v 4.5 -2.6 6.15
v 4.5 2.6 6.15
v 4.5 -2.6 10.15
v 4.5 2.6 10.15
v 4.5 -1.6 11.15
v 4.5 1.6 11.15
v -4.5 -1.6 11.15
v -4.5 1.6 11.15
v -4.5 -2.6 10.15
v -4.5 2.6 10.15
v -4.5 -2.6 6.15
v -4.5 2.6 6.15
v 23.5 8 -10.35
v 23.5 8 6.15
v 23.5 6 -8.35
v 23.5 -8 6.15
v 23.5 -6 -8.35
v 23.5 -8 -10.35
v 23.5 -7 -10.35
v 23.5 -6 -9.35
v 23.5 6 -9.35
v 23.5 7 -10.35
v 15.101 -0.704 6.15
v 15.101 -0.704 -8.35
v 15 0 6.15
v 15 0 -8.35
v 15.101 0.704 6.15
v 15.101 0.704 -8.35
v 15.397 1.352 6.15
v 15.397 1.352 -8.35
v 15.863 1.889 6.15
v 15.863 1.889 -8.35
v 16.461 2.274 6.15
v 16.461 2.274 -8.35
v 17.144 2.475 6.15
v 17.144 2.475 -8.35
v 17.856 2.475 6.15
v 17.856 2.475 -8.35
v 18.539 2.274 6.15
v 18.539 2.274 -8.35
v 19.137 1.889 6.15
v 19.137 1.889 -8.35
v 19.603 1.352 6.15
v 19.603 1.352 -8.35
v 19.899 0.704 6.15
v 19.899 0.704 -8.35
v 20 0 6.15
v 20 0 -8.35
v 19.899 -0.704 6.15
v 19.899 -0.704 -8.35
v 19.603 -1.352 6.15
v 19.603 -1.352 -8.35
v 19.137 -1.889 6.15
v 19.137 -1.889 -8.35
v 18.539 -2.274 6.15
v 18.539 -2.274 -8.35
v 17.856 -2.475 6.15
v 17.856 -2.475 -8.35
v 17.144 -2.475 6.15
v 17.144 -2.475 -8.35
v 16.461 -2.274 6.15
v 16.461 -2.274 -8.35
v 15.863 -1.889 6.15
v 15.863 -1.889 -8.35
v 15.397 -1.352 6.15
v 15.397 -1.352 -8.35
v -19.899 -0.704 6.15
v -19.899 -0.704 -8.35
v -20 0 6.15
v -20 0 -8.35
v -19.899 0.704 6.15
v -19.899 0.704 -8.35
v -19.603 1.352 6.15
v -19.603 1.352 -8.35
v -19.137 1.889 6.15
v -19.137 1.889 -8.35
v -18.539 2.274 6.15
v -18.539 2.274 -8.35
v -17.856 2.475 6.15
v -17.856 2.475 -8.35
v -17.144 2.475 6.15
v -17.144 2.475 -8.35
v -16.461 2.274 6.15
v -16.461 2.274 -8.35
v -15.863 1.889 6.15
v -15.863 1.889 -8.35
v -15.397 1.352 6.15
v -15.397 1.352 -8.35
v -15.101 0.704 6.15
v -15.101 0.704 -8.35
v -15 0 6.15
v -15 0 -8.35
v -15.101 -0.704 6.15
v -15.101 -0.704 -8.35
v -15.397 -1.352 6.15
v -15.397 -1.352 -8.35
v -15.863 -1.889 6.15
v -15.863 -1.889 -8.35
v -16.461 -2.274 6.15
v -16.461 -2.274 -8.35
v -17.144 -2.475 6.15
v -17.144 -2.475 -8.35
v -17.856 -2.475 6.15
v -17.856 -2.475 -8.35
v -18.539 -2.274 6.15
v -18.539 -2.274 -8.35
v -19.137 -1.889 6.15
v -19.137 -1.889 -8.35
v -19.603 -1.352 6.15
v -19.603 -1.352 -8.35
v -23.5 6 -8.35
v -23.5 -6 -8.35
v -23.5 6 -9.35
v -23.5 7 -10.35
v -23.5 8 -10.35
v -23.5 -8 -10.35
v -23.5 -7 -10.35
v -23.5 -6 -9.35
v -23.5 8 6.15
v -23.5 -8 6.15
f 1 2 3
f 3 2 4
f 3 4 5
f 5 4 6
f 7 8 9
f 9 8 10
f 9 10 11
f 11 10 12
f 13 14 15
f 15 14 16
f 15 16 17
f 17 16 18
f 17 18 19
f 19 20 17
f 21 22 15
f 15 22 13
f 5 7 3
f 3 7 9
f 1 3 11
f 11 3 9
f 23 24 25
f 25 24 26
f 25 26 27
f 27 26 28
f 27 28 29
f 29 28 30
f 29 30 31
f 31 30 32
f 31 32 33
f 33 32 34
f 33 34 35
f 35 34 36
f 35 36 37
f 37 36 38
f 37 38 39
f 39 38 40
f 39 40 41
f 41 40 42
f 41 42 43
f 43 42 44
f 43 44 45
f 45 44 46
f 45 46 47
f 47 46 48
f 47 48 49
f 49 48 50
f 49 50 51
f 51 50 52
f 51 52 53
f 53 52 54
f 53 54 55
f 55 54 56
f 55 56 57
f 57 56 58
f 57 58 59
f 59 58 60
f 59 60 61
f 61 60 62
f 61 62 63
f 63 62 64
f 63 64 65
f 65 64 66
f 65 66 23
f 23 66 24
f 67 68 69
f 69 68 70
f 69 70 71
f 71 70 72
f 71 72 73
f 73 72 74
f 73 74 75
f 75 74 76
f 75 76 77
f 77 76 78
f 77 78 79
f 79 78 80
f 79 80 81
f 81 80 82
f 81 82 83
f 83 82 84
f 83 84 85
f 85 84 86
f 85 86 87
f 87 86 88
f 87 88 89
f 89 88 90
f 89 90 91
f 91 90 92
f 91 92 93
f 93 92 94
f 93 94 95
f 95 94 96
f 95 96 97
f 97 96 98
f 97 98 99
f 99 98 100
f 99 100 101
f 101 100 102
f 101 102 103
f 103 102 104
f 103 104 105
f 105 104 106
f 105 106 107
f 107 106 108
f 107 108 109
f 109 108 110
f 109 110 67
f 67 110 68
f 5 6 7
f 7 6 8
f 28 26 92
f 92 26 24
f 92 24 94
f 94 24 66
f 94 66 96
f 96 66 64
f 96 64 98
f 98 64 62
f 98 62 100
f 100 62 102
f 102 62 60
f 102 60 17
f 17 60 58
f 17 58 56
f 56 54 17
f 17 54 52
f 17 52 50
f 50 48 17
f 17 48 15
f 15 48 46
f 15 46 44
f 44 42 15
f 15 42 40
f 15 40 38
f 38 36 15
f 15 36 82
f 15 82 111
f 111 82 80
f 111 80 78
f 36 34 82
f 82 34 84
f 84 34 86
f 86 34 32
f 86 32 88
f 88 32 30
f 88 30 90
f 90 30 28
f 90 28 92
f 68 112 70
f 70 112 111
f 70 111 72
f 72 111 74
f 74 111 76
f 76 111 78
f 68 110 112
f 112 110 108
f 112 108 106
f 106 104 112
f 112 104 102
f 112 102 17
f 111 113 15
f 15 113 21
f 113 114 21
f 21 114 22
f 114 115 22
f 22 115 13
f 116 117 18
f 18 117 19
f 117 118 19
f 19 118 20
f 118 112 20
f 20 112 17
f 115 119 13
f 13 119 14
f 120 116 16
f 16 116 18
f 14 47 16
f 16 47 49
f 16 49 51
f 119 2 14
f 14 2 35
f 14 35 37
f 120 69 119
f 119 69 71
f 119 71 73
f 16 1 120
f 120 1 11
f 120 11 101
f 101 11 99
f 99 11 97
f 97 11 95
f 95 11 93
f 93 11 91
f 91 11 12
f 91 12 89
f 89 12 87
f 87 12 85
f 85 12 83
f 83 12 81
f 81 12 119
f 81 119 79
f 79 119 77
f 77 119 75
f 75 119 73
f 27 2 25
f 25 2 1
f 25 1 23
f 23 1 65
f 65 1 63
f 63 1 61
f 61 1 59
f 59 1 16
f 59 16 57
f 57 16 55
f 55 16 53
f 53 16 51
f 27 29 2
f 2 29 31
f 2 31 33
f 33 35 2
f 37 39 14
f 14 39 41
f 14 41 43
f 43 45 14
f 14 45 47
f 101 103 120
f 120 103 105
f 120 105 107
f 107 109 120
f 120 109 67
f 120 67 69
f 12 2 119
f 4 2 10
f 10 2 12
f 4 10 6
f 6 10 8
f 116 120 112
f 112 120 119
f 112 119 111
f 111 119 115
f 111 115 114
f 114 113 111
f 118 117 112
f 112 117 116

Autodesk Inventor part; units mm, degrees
ref_plane "YZ Plane" through (0, 0, 0) normal (1, 0, 0) x (0, 1, 0)
ref_plane "XZ Plane" through (0, 0, 0) normal (0, 1, 0) x (-1, 0, 0)
ref_plane "XY Plane" through (0, 0, 0) normal (0, 0, 1) x (1, 0, 0)
ref_plane "작업 평면1" through (23.5, -8, -2) normal (1, 0, 0) x (0, 0, -1)
sketch "스케치1" plane through (23.5, -8, -2) normal (1, 0, 0) x (0, 0, -1)
  line L0 (0, 16) -> (-8.15, 16) projected
  line L1 (-8.15, 16) -> (-8.15, 10.6) projected
  line L2 (-8.15, 10.6) -> (-12.15, 10.6) projected
  line L3 (-13.15, 9.6) -> (-12.15, 10.6) projected
  line L4 (-13.15, 9.6) -> (-13.15, 6.4) projected
  line L5 (-12.15, 5.4) -> (-13.15, 6.4) projected
  line L6 (-12.15, 5.4) -> (-8.15, 5.4) projected
  line L7 (-8.15, 5.4) -> (-8.15, 0) projected
  line L8 (-8.15, 0) -> (0, 0) projected
  line L9 (0, 16) -> (8.35, 16)
  line L10 (8.35, 16) -> (8.35, 15)
  line L11 (8.35, 15) -> (7.35, 14)
  line L12 (6.35, 14) -> (6.35, 2)
  line L13 (6.35, 14) -> (7.35, 14)
  line L14 (0, 0) -> (8.35, 0)
  line L15 (8.35, 0) -> (8.35, 1)
  line L16 (8.35, 1) -> (7.35, 2)
  line L17 (6.35, 2) -> (7.35, 2)
  line L18 (0, 16) -> (-8.15, 16)
  line L19 (-8.15, 10.6) -> (-12.15, 10.6) projected
  line L20 (-8.15, 10.6) -> (-12.15, 10.6)
  line L21 (-12.15, 10.6) -> (-13.15, 9.6)
  line L22 (-13.15, 6.4) -> (-12.15, 5.4)
  point P0 (-2, 8)
  dimension "d1" = 8.35
sketch "스케치2" plane through (-23.5, 8, 6.15) normal (0, 0, 1) x (1, 0, 0)
  arc A0 (7.9209, -9.6) -> (7.9209, -6.4) centre (6, -8) ccw projected
  line L0 (39.0791, -9.6) -> (7.9209, -9.6) projected
  circle A1 centre (6, -8) radius 2.5
  circle A2 centre (41, -8) radius 2.5 projected
  circle A3 centre (41, -8) radius 2.5
  point P0 (23.5, -8)
  point P1 (7.9209, -6.4)
extrude "돌출1" add sketch "스케치1" against normal up to surface (47 mm away)
extrude "돌출2" cut sketch "스케치2" along normal mid plane 50
sketch "스케치3" plane through (-15.5791, 1.6, 11.15) normal (0, 0, 1) x (1, 0, 0)
  line L0 (15.5791, -14.4593) -> (15.5791, 15.5737)
  line L1 (-7.9209, 4.4) -> (-7.9209, -7.6) projected
  line L2 (-7.9209, 4.4) -> (11.0791, 4.4)
  line L3 (11.0791, 4.4) -> (11.0791, -7.6)
  line L4 (11.0791, -7.6) -> (-7.9209, -7.6)
  line L5 (-7.9209, -7.6) -> (-7.9209, 4.4)
  line L6 (39.0791, 4.4) -> (39.0791, -7.6)
  line L7 (39.0791, 4.4) -> (20.0791, 4.4)
  line L8 (20.0791, 4.4) -> (20.0791, -7.6)
  line L9 (20.0791, -7.6) -> (39.0791, -7.6)
  line L10 (39.0791, -7.6) -> (39.0791, 4.4)
  point P0 (15.5791, -1.6)
  dimension "d9" = 19
extrude "돌출3" cut sketch "스케치3" against normal up to surface (5 mm away)
properties part number "Bearing Spacer_2mmUP"
